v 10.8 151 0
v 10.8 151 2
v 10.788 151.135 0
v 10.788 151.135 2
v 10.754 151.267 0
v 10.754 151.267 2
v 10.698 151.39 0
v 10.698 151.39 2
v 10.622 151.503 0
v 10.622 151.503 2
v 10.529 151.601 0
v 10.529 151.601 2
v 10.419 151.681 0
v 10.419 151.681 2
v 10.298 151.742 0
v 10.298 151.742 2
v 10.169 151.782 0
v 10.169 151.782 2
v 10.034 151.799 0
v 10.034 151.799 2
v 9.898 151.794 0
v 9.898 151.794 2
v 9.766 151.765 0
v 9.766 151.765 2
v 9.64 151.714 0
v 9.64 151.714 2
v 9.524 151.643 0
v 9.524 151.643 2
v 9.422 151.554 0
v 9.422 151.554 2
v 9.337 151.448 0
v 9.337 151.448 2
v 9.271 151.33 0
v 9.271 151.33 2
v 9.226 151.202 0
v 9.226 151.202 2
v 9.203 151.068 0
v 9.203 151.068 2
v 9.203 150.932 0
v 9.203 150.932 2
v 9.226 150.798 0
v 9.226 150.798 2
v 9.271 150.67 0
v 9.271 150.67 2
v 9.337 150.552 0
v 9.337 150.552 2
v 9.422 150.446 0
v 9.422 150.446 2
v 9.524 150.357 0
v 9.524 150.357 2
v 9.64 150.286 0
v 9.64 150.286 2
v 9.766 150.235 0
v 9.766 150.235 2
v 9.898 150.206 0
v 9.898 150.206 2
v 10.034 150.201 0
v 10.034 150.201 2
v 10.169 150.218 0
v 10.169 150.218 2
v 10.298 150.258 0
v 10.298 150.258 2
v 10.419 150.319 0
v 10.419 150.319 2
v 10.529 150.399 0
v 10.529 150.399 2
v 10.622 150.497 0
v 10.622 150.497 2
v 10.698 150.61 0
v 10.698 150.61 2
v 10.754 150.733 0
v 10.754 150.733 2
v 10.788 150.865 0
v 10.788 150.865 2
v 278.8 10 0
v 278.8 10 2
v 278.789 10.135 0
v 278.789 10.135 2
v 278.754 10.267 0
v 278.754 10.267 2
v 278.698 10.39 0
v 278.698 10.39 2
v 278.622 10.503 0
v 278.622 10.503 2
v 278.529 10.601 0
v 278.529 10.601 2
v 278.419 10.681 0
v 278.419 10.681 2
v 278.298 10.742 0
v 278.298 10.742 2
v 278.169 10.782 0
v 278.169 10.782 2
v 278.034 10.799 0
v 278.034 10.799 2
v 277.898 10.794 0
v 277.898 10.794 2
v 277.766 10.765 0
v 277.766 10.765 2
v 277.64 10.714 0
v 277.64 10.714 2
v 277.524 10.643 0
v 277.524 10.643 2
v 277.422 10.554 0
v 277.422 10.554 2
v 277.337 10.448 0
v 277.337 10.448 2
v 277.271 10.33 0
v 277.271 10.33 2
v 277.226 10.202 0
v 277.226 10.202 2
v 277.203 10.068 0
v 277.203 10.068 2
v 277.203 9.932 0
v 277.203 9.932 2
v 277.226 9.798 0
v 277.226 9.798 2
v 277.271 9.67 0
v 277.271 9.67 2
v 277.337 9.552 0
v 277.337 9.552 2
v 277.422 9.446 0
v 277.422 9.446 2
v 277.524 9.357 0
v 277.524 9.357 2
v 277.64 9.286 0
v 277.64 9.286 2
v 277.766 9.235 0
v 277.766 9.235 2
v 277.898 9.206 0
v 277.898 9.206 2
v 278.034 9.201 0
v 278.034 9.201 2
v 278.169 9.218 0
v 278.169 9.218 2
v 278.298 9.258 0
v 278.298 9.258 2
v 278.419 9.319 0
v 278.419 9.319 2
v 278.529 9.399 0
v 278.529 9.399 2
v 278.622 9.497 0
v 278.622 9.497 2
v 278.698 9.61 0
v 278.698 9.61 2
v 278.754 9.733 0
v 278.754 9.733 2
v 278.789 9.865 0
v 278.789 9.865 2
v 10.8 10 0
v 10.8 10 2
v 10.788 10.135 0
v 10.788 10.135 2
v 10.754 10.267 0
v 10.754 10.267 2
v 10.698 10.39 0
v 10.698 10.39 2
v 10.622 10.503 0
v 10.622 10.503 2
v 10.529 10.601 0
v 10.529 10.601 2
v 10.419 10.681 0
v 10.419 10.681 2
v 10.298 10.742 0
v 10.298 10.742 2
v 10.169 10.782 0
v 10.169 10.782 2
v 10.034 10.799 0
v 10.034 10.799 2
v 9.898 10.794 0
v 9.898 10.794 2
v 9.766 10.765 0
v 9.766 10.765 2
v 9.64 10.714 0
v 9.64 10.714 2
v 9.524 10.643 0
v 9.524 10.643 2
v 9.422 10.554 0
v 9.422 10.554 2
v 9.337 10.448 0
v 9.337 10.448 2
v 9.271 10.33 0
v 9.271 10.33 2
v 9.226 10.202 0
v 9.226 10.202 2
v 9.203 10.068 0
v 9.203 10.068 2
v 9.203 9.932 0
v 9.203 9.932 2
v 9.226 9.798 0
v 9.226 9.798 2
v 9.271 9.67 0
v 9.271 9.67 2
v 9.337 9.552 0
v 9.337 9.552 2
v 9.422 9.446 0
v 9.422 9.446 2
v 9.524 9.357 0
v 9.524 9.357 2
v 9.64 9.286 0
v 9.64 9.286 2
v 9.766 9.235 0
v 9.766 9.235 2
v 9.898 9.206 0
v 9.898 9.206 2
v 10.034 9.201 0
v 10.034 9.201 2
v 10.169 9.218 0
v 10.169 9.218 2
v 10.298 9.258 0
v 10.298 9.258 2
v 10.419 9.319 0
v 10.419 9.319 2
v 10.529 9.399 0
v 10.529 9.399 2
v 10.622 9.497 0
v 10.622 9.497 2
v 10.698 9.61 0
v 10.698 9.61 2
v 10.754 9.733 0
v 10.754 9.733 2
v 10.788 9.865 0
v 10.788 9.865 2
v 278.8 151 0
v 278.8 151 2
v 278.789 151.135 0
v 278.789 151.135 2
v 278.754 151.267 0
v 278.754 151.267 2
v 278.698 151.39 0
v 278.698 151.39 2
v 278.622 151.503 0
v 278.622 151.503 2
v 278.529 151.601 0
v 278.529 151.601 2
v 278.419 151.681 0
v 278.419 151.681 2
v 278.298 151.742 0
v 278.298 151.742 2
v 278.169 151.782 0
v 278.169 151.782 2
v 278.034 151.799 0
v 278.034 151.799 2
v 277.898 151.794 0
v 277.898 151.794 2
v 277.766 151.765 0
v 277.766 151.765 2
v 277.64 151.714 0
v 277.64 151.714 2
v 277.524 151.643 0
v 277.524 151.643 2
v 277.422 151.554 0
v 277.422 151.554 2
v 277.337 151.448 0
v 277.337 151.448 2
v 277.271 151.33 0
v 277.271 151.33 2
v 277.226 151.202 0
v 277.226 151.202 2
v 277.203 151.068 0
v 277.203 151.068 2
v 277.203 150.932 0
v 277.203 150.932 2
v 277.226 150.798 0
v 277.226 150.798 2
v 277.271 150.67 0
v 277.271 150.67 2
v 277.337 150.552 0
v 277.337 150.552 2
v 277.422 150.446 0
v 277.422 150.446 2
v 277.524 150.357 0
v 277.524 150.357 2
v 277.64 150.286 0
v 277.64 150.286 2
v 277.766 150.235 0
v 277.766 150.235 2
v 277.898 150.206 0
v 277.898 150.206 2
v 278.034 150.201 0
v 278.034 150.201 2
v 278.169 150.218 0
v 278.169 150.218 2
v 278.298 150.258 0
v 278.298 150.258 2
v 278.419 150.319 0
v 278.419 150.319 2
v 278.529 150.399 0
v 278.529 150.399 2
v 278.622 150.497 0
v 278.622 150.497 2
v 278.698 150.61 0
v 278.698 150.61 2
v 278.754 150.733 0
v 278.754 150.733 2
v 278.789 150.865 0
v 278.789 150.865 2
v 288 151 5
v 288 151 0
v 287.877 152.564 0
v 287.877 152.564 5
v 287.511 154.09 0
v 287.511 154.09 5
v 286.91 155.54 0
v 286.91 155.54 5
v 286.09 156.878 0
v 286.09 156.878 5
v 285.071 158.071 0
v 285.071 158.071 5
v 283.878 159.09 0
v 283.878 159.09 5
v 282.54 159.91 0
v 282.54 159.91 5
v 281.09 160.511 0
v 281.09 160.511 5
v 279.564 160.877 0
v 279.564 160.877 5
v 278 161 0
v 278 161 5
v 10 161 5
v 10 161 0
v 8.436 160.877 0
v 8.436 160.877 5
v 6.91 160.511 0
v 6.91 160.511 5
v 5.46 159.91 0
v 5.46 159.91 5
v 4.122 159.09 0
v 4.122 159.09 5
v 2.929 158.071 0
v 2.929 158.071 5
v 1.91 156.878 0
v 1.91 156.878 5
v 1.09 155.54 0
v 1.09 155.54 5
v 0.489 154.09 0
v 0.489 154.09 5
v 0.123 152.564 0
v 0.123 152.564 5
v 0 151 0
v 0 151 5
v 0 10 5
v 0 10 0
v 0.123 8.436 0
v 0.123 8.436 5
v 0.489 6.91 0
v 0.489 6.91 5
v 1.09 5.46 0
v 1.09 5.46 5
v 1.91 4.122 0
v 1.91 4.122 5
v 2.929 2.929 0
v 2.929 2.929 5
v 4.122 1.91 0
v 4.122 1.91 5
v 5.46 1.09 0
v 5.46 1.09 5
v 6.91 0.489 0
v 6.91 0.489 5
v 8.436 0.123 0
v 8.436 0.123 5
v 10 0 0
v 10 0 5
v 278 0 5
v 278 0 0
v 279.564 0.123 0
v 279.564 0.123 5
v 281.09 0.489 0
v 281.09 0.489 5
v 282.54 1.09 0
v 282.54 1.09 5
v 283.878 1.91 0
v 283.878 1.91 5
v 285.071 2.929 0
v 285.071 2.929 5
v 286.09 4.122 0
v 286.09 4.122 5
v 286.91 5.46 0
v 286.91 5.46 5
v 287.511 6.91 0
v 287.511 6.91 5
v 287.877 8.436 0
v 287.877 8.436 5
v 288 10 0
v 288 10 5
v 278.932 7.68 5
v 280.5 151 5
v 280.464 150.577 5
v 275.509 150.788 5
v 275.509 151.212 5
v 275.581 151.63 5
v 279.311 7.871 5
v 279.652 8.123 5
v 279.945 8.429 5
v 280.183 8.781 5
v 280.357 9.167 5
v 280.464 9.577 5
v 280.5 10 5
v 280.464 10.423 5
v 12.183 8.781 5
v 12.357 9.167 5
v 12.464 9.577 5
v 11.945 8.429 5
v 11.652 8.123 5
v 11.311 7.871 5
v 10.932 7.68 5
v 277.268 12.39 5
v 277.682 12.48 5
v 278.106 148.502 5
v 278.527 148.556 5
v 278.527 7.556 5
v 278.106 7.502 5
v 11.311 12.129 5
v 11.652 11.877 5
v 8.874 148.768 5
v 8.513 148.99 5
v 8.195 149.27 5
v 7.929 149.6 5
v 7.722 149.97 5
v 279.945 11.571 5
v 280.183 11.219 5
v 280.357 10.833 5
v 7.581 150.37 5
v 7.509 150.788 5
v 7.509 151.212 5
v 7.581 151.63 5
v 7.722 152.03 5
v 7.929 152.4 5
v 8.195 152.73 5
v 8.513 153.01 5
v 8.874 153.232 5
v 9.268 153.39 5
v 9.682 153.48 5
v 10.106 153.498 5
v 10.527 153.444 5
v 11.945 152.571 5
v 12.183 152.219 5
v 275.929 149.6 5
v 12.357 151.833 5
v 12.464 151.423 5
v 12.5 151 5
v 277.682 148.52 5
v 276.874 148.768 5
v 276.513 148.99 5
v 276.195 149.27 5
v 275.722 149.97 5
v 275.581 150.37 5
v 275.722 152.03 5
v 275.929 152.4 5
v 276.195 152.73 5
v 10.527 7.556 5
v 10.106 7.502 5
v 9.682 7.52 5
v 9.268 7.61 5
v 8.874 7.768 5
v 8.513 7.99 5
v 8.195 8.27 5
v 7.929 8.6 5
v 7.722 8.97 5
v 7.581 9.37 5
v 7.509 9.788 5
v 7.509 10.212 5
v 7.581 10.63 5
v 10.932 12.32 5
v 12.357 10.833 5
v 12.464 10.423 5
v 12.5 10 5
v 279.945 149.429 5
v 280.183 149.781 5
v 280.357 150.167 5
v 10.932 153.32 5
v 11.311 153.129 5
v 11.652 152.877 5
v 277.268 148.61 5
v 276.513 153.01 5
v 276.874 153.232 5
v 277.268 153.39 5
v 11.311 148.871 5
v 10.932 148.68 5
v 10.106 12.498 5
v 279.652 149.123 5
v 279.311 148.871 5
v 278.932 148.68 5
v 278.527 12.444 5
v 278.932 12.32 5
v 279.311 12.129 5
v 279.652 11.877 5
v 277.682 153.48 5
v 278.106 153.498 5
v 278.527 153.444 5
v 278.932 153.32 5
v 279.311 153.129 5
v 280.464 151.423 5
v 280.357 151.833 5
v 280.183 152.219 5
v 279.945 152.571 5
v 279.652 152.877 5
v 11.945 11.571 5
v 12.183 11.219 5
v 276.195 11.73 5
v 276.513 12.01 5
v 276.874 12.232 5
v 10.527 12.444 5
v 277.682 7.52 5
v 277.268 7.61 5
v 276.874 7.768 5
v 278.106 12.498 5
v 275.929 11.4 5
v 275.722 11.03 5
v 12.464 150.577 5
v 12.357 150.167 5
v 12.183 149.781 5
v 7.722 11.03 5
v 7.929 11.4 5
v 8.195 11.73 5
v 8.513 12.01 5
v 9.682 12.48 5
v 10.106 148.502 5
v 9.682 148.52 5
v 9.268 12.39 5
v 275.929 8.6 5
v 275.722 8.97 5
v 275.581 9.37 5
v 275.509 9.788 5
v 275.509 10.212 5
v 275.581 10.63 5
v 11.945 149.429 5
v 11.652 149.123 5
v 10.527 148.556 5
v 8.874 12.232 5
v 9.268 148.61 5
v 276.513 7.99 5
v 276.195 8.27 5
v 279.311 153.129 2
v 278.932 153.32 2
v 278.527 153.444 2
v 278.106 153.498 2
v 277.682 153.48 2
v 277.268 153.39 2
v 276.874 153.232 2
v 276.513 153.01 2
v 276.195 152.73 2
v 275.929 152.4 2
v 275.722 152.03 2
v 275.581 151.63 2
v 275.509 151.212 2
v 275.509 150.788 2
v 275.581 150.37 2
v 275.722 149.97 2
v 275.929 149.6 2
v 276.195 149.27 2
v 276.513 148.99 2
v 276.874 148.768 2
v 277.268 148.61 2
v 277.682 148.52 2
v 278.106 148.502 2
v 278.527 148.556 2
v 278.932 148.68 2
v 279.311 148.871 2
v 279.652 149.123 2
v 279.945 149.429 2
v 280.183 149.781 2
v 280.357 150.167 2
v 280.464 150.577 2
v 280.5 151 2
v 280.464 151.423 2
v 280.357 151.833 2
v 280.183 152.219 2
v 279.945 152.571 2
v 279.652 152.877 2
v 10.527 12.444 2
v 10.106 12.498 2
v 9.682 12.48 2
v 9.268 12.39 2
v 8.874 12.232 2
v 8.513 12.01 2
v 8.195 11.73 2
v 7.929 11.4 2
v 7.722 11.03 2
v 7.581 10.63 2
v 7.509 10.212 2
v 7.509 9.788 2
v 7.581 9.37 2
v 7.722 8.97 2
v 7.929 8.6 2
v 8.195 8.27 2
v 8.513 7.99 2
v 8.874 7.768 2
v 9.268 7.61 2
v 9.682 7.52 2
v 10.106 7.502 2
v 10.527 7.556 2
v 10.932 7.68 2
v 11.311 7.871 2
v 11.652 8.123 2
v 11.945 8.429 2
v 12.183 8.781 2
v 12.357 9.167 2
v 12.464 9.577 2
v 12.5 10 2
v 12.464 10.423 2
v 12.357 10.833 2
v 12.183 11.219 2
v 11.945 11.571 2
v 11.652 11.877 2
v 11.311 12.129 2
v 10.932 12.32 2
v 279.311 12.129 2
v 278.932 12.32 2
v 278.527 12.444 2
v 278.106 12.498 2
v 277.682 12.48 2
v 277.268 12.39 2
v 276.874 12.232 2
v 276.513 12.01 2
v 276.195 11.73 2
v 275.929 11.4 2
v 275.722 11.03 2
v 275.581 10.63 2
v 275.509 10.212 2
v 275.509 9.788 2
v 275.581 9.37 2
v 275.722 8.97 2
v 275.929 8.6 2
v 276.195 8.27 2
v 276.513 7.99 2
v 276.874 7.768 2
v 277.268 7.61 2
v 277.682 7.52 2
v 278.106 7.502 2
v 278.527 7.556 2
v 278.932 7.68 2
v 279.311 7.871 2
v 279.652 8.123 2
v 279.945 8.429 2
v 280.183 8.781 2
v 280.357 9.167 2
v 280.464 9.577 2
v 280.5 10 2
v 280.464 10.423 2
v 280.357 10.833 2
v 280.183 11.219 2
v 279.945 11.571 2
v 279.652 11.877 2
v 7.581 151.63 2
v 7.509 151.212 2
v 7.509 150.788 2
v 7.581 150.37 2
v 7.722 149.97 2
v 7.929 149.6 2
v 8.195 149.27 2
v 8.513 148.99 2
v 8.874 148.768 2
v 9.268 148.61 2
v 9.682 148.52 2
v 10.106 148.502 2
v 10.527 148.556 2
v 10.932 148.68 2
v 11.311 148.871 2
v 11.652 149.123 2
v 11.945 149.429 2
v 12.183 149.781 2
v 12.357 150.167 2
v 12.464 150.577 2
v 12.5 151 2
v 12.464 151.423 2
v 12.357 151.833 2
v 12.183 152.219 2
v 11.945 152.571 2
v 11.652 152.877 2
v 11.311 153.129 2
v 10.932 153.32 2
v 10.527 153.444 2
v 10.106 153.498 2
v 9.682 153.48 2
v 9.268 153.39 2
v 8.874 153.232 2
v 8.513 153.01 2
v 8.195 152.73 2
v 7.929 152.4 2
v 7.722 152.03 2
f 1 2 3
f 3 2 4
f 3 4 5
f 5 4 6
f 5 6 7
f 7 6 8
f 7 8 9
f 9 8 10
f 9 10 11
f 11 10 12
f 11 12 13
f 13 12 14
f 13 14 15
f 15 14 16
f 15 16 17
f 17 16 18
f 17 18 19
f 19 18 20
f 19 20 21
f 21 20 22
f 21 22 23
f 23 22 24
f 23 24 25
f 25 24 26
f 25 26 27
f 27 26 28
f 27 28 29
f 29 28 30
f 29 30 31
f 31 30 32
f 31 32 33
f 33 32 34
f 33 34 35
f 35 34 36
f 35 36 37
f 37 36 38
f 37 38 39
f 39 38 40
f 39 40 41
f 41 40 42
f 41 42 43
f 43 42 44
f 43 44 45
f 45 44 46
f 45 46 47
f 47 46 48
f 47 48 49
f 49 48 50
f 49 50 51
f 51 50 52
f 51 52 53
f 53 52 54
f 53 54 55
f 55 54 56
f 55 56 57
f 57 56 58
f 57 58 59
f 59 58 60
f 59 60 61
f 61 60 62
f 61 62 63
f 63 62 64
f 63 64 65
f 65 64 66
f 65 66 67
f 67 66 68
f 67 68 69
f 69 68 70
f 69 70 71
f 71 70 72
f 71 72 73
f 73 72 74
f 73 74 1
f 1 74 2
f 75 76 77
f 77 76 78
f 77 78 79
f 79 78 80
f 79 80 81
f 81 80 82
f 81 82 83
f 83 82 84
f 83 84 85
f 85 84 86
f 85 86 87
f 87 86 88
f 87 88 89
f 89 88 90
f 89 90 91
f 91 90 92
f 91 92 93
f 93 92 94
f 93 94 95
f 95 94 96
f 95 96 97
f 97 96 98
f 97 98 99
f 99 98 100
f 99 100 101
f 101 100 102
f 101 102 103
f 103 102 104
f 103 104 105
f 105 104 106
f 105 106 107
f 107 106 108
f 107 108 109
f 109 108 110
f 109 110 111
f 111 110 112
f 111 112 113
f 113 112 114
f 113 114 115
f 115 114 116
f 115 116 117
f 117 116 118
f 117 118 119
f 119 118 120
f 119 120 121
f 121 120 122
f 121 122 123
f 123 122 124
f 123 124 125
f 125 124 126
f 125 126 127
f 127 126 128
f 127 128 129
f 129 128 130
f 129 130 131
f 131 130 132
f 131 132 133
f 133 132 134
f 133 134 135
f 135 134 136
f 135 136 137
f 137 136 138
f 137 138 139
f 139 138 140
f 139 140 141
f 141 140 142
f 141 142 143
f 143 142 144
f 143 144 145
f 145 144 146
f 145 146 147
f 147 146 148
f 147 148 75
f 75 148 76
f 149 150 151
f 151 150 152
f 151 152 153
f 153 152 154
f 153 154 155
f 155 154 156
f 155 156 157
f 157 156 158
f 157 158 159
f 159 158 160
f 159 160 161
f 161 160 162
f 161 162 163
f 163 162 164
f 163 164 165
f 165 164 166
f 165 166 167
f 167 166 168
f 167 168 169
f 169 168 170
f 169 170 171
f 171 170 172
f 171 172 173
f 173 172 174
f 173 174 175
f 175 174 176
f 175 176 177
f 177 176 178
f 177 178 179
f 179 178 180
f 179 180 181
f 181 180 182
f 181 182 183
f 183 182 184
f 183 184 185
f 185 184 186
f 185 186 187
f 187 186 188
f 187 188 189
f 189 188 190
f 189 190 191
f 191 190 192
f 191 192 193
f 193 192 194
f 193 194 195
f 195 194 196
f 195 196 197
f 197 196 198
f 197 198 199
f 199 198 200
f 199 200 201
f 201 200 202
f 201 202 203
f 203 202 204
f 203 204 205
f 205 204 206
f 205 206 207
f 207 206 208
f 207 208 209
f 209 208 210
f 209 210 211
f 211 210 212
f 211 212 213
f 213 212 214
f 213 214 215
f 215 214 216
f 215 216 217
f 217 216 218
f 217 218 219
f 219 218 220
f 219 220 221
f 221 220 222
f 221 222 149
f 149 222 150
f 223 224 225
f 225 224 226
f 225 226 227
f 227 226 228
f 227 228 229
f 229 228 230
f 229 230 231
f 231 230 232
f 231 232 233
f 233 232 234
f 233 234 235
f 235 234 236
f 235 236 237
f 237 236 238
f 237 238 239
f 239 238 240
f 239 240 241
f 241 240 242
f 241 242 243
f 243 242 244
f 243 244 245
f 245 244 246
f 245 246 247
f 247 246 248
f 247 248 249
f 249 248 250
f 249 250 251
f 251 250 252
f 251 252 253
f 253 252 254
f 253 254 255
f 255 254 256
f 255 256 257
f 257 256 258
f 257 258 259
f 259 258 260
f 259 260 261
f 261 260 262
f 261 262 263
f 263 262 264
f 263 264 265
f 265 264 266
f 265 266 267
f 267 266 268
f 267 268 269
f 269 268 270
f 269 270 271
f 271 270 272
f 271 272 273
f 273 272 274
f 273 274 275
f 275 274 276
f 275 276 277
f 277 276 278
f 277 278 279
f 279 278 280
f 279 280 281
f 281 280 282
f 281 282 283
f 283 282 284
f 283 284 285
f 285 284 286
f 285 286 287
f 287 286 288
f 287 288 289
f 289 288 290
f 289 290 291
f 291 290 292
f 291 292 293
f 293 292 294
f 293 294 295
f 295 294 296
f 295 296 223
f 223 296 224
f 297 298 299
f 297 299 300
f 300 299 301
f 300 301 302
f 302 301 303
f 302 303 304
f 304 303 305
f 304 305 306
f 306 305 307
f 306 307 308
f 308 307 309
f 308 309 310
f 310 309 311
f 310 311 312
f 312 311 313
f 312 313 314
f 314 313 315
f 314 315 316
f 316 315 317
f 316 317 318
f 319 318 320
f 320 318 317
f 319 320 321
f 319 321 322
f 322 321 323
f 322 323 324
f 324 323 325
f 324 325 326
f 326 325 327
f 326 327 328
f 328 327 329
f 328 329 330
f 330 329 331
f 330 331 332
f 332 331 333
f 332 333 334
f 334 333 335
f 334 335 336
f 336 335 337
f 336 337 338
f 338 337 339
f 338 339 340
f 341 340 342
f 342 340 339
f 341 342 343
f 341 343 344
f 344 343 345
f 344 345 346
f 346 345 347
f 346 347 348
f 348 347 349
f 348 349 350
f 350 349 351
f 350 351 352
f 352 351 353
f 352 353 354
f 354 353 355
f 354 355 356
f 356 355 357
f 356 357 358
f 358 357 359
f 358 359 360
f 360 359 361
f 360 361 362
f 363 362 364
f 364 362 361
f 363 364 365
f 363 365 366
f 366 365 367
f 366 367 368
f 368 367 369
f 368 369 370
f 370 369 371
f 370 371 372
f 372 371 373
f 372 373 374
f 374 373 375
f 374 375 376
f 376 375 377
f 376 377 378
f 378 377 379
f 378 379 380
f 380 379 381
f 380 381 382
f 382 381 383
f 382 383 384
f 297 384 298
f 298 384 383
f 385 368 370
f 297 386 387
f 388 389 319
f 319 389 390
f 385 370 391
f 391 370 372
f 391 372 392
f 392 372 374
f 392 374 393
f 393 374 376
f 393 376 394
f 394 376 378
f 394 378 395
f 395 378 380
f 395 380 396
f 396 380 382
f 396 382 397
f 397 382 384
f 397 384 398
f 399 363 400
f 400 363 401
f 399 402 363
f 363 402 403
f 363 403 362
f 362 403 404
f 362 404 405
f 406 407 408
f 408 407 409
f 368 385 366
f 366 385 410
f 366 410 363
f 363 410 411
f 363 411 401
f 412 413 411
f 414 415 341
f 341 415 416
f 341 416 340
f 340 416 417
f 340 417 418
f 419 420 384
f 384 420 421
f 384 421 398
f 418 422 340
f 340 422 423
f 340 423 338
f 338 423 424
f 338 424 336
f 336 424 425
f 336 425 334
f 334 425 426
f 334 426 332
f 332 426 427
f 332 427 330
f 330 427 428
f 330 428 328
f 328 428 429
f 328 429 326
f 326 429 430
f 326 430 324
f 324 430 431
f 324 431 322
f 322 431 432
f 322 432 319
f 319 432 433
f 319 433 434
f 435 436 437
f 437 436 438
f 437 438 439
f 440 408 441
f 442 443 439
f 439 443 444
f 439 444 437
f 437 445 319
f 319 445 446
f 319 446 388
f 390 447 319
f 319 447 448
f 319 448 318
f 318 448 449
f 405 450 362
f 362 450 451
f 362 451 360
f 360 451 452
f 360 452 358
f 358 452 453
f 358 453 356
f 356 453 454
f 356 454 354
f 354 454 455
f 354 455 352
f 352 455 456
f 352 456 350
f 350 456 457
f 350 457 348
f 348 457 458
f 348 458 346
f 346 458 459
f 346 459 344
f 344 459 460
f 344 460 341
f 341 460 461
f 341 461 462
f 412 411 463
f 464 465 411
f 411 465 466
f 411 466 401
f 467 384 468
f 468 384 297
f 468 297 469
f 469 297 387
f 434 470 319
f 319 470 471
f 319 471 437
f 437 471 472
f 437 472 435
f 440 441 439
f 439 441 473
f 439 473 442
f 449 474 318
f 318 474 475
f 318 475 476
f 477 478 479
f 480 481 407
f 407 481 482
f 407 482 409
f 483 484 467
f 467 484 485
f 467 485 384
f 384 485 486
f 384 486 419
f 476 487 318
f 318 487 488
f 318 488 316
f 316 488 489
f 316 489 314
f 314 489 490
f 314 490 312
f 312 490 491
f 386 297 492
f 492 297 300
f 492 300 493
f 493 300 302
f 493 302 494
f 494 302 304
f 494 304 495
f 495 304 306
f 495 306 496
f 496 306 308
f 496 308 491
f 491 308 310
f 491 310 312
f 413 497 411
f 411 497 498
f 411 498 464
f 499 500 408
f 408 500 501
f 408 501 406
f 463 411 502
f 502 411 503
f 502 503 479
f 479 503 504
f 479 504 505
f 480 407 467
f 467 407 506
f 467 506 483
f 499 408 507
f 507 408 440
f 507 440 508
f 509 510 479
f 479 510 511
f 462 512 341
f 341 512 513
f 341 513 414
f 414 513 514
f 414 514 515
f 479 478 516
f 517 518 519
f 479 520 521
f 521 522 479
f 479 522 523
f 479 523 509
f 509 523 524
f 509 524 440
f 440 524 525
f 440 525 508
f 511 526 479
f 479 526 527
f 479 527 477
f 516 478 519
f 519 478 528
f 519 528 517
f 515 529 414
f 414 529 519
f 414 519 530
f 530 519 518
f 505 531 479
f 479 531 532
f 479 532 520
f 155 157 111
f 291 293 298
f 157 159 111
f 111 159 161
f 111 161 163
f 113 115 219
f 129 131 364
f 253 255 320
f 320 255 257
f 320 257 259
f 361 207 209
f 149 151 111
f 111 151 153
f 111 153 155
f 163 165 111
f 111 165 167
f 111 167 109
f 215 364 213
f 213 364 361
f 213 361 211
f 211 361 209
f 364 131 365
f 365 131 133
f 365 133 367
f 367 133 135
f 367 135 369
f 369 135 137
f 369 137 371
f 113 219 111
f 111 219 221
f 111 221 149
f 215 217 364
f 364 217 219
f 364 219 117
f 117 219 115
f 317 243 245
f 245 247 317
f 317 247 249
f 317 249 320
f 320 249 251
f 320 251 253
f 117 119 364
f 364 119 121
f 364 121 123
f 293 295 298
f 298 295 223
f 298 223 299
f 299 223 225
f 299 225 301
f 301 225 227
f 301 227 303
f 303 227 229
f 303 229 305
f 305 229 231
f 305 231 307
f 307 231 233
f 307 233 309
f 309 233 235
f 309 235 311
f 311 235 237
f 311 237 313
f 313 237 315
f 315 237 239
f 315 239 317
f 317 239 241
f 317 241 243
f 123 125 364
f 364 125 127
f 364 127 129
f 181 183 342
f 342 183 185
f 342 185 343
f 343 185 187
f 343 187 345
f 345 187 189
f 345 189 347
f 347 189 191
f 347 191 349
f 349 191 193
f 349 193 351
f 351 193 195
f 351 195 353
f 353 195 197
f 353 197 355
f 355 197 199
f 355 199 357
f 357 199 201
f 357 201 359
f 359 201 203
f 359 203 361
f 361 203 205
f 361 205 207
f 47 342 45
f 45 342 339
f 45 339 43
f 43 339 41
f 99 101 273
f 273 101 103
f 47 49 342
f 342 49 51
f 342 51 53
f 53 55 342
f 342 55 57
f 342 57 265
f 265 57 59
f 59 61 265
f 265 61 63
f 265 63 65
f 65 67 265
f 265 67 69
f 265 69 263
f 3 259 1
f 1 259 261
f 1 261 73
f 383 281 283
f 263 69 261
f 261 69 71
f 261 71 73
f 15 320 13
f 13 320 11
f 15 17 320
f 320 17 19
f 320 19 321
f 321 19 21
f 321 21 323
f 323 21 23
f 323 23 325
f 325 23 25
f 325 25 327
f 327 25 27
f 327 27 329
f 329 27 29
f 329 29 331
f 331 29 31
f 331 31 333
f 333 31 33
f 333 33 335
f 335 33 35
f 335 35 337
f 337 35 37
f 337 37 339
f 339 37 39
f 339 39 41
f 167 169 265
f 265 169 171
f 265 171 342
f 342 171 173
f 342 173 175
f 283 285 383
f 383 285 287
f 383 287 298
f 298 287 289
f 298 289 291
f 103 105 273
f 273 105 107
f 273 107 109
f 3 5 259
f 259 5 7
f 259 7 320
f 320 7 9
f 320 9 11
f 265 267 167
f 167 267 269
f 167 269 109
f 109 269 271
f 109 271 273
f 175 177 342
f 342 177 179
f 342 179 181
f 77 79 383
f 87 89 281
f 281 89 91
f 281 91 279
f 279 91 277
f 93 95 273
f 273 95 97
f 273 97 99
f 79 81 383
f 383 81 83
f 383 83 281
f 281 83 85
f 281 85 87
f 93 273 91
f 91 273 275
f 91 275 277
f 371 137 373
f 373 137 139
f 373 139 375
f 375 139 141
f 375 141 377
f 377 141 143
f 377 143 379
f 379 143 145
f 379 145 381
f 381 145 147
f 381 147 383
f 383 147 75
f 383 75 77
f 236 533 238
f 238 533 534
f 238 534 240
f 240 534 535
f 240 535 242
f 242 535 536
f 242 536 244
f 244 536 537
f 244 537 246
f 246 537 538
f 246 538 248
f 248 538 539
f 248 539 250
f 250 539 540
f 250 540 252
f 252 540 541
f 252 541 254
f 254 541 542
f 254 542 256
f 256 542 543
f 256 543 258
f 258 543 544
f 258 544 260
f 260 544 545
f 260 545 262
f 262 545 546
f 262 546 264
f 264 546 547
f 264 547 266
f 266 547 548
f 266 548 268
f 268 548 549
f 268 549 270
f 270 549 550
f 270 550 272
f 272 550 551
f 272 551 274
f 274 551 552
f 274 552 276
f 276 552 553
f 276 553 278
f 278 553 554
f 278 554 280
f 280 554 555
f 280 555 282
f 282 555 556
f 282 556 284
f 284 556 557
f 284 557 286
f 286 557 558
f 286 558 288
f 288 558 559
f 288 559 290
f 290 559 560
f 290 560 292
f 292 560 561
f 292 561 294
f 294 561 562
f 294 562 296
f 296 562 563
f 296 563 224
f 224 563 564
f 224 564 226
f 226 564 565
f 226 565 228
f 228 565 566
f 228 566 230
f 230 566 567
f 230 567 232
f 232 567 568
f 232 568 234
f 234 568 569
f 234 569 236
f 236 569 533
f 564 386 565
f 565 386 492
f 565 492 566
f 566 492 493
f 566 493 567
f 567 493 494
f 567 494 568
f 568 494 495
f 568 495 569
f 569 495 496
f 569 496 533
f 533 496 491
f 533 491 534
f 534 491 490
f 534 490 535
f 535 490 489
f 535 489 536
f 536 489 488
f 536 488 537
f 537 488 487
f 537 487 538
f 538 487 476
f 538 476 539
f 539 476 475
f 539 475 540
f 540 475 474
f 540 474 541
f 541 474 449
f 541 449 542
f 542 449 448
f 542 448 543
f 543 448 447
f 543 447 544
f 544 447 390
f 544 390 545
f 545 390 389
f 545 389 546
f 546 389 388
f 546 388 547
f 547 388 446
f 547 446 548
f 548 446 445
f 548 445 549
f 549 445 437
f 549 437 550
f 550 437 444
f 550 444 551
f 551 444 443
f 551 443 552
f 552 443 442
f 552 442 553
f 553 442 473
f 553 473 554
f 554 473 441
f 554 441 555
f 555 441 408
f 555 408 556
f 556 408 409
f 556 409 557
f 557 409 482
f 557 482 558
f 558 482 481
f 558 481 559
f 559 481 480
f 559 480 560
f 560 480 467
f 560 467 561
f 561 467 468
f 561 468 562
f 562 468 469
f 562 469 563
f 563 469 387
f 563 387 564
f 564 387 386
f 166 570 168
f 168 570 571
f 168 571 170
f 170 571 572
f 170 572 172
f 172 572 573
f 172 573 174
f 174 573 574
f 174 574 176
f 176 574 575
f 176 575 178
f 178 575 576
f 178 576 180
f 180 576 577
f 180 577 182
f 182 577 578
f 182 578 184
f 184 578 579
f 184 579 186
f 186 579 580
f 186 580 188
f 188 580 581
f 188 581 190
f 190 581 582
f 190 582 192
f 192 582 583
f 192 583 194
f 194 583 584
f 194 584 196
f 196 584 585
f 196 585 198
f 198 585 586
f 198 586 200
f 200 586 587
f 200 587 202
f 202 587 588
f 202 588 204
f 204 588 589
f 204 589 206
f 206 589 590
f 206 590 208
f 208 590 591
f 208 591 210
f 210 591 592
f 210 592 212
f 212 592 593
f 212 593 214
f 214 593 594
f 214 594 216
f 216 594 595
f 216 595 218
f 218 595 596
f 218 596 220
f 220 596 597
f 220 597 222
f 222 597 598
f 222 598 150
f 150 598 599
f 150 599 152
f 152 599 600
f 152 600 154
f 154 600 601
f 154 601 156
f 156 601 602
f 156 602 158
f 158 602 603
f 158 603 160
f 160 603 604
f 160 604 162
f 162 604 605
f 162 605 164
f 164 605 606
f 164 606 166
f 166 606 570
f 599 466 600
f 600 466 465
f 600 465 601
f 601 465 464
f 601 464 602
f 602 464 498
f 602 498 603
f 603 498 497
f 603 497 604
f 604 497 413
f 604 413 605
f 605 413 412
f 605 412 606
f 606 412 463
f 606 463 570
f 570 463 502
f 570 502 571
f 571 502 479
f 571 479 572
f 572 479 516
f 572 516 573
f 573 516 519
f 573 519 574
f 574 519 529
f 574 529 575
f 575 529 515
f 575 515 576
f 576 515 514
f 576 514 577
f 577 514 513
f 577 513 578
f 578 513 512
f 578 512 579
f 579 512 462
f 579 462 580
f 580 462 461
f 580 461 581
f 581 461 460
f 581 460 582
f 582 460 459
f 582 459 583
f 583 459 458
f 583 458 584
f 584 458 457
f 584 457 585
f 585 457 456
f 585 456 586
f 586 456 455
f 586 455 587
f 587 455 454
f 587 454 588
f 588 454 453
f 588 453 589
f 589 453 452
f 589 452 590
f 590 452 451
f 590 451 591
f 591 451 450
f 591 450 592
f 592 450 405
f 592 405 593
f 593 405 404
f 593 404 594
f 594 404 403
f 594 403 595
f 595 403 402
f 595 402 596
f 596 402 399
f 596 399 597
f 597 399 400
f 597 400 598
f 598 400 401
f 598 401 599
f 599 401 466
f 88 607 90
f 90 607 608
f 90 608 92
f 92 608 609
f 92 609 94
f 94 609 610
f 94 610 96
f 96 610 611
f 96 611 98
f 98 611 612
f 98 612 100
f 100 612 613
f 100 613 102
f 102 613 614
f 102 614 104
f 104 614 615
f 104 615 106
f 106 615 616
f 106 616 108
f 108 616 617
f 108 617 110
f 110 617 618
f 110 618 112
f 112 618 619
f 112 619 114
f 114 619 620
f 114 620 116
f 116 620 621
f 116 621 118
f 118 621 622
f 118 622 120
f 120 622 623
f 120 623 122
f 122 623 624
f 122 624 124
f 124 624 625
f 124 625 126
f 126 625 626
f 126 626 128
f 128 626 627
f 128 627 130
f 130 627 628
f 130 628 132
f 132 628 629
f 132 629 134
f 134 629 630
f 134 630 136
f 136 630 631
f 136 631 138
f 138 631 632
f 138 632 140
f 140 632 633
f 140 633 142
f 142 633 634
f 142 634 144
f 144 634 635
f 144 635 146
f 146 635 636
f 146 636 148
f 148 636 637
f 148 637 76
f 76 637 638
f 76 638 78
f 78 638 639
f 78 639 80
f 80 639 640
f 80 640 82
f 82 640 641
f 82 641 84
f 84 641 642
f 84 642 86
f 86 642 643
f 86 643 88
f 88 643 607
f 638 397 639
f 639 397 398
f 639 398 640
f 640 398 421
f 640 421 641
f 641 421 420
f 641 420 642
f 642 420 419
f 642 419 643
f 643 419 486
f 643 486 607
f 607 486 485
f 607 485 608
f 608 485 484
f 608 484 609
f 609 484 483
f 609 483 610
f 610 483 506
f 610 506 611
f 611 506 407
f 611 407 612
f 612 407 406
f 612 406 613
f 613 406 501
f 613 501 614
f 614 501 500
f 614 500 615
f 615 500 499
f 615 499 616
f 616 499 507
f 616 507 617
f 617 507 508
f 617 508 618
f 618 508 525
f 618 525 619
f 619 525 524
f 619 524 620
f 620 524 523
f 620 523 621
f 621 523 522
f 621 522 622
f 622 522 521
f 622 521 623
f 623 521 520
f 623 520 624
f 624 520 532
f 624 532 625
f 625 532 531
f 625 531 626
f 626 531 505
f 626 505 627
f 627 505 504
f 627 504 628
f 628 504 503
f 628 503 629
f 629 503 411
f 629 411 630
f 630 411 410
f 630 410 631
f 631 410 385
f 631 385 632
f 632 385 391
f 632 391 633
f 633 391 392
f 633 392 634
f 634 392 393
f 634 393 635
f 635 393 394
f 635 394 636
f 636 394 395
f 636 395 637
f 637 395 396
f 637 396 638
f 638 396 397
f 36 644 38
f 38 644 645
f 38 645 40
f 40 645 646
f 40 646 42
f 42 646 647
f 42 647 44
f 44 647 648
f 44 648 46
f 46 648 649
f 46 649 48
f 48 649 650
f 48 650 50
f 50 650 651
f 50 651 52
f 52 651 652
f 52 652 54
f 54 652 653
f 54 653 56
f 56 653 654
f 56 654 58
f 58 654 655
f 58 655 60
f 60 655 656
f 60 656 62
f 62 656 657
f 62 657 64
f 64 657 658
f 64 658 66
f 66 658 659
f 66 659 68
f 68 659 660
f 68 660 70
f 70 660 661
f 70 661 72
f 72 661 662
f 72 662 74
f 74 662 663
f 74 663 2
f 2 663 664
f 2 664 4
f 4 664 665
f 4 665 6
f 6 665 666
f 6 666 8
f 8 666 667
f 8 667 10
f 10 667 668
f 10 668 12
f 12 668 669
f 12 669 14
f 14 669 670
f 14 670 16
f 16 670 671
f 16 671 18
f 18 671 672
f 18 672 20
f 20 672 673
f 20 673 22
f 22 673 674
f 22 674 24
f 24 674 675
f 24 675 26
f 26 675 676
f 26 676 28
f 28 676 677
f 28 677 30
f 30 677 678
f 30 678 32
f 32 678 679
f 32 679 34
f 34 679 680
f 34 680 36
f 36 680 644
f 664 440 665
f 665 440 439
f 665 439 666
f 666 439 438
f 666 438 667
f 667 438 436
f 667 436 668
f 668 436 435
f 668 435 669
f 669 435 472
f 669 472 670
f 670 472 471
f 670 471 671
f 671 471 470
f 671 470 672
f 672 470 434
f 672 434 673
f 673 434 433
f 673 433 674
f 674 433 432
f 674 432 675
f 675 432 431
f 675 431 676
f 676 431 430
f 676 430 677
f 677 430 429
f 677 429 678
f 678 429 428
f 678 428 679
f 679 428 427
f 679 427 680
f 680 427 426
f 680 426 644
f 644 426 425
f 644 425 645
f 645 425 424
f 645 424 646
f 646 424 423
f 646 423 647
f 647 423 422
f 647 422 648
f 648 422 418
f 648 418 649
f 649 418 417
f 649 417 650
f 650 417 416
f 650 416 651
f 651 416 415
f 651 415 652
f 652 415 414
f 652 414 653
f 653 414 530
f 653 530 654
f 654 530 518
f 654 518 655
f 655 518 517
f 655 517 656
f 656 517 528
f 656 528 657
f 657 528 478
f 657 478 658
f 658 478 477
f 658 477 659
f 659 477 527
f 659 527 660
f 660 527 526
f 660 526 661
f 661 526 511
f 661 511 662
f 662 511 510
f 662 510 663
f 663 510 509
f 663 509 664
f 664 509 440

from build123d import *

# Parameters (mm, degrees)
BOSS_EXTRUDE1_DEPTH = 5
SKETCH2_R           = 0.8
CUT_EXTRUDE1_DEPTH  = 6
SKETCH3_R           = 2.5
CUT_EXTRUDE2_DEPTH  = 3


with BuildPart() as part:
    # Sketch1 → Boss-Extrude1 (new body)
    with BuildSketch(Plane.XY):
        with BuildLine():
            Line((10, 0), (278, 0))
            ThreePointArc((278, 0), (285.071067812, 2.928932188), (288, 10))
            Line((288, 10), (288, 151))
            ThreePointArc((288, 151), (285.071067812, 158.071067812), (278, 161))
            Line((278, 161), (10, 161))
            ThreePointArc((10, 161), (2.928932188, 158.071067812), (0, 151))
            Line((0, 151), (0, 10))
            ThreePointArc((0, 10), (2.928932188, 2.928932188), (10, 0))
        make_face()
    extrude(amount=BOSS_EXTRUDE1_DEPTH)

    # Sketch2 → Cut-Extrude1 (cut, through all)
    with BuildSketch(Plane.XY.offset(5)):
        with Locations((10, 151)):
            Circle(SKETCH2_R)
        with Locations((278, 151)):
            Circle(SKETCH2_R)
        with Locations((10, 10)):
            Circle(SKETCH2_R)
        with Locations((278, 10)):
            Circle(SKETCH2_R)
    extrude(amount=-CUT_EXTRUDE1_DEPTH, mode=Mode.SUBTRACT)

    # Sketch3 → Cut-Extrude2 (cut)
    with BuildSketch(Plane.XY.offset(5)):
        with Locations((10, 151)):
            Circle(SKETCH3_R)
        with Locations((10, 10)):
            Circle(SKETCH3_R)
        with Locations((278, 10)):
            Circle(SKETCH3_R)
        with Locations((278, 151)):
            Circle(SKETCH3_R)
    extrude(amount=-CUT_EXTRUDE2_DEPTH, mode=Mode.SUBTRACT)


solid = part.part
